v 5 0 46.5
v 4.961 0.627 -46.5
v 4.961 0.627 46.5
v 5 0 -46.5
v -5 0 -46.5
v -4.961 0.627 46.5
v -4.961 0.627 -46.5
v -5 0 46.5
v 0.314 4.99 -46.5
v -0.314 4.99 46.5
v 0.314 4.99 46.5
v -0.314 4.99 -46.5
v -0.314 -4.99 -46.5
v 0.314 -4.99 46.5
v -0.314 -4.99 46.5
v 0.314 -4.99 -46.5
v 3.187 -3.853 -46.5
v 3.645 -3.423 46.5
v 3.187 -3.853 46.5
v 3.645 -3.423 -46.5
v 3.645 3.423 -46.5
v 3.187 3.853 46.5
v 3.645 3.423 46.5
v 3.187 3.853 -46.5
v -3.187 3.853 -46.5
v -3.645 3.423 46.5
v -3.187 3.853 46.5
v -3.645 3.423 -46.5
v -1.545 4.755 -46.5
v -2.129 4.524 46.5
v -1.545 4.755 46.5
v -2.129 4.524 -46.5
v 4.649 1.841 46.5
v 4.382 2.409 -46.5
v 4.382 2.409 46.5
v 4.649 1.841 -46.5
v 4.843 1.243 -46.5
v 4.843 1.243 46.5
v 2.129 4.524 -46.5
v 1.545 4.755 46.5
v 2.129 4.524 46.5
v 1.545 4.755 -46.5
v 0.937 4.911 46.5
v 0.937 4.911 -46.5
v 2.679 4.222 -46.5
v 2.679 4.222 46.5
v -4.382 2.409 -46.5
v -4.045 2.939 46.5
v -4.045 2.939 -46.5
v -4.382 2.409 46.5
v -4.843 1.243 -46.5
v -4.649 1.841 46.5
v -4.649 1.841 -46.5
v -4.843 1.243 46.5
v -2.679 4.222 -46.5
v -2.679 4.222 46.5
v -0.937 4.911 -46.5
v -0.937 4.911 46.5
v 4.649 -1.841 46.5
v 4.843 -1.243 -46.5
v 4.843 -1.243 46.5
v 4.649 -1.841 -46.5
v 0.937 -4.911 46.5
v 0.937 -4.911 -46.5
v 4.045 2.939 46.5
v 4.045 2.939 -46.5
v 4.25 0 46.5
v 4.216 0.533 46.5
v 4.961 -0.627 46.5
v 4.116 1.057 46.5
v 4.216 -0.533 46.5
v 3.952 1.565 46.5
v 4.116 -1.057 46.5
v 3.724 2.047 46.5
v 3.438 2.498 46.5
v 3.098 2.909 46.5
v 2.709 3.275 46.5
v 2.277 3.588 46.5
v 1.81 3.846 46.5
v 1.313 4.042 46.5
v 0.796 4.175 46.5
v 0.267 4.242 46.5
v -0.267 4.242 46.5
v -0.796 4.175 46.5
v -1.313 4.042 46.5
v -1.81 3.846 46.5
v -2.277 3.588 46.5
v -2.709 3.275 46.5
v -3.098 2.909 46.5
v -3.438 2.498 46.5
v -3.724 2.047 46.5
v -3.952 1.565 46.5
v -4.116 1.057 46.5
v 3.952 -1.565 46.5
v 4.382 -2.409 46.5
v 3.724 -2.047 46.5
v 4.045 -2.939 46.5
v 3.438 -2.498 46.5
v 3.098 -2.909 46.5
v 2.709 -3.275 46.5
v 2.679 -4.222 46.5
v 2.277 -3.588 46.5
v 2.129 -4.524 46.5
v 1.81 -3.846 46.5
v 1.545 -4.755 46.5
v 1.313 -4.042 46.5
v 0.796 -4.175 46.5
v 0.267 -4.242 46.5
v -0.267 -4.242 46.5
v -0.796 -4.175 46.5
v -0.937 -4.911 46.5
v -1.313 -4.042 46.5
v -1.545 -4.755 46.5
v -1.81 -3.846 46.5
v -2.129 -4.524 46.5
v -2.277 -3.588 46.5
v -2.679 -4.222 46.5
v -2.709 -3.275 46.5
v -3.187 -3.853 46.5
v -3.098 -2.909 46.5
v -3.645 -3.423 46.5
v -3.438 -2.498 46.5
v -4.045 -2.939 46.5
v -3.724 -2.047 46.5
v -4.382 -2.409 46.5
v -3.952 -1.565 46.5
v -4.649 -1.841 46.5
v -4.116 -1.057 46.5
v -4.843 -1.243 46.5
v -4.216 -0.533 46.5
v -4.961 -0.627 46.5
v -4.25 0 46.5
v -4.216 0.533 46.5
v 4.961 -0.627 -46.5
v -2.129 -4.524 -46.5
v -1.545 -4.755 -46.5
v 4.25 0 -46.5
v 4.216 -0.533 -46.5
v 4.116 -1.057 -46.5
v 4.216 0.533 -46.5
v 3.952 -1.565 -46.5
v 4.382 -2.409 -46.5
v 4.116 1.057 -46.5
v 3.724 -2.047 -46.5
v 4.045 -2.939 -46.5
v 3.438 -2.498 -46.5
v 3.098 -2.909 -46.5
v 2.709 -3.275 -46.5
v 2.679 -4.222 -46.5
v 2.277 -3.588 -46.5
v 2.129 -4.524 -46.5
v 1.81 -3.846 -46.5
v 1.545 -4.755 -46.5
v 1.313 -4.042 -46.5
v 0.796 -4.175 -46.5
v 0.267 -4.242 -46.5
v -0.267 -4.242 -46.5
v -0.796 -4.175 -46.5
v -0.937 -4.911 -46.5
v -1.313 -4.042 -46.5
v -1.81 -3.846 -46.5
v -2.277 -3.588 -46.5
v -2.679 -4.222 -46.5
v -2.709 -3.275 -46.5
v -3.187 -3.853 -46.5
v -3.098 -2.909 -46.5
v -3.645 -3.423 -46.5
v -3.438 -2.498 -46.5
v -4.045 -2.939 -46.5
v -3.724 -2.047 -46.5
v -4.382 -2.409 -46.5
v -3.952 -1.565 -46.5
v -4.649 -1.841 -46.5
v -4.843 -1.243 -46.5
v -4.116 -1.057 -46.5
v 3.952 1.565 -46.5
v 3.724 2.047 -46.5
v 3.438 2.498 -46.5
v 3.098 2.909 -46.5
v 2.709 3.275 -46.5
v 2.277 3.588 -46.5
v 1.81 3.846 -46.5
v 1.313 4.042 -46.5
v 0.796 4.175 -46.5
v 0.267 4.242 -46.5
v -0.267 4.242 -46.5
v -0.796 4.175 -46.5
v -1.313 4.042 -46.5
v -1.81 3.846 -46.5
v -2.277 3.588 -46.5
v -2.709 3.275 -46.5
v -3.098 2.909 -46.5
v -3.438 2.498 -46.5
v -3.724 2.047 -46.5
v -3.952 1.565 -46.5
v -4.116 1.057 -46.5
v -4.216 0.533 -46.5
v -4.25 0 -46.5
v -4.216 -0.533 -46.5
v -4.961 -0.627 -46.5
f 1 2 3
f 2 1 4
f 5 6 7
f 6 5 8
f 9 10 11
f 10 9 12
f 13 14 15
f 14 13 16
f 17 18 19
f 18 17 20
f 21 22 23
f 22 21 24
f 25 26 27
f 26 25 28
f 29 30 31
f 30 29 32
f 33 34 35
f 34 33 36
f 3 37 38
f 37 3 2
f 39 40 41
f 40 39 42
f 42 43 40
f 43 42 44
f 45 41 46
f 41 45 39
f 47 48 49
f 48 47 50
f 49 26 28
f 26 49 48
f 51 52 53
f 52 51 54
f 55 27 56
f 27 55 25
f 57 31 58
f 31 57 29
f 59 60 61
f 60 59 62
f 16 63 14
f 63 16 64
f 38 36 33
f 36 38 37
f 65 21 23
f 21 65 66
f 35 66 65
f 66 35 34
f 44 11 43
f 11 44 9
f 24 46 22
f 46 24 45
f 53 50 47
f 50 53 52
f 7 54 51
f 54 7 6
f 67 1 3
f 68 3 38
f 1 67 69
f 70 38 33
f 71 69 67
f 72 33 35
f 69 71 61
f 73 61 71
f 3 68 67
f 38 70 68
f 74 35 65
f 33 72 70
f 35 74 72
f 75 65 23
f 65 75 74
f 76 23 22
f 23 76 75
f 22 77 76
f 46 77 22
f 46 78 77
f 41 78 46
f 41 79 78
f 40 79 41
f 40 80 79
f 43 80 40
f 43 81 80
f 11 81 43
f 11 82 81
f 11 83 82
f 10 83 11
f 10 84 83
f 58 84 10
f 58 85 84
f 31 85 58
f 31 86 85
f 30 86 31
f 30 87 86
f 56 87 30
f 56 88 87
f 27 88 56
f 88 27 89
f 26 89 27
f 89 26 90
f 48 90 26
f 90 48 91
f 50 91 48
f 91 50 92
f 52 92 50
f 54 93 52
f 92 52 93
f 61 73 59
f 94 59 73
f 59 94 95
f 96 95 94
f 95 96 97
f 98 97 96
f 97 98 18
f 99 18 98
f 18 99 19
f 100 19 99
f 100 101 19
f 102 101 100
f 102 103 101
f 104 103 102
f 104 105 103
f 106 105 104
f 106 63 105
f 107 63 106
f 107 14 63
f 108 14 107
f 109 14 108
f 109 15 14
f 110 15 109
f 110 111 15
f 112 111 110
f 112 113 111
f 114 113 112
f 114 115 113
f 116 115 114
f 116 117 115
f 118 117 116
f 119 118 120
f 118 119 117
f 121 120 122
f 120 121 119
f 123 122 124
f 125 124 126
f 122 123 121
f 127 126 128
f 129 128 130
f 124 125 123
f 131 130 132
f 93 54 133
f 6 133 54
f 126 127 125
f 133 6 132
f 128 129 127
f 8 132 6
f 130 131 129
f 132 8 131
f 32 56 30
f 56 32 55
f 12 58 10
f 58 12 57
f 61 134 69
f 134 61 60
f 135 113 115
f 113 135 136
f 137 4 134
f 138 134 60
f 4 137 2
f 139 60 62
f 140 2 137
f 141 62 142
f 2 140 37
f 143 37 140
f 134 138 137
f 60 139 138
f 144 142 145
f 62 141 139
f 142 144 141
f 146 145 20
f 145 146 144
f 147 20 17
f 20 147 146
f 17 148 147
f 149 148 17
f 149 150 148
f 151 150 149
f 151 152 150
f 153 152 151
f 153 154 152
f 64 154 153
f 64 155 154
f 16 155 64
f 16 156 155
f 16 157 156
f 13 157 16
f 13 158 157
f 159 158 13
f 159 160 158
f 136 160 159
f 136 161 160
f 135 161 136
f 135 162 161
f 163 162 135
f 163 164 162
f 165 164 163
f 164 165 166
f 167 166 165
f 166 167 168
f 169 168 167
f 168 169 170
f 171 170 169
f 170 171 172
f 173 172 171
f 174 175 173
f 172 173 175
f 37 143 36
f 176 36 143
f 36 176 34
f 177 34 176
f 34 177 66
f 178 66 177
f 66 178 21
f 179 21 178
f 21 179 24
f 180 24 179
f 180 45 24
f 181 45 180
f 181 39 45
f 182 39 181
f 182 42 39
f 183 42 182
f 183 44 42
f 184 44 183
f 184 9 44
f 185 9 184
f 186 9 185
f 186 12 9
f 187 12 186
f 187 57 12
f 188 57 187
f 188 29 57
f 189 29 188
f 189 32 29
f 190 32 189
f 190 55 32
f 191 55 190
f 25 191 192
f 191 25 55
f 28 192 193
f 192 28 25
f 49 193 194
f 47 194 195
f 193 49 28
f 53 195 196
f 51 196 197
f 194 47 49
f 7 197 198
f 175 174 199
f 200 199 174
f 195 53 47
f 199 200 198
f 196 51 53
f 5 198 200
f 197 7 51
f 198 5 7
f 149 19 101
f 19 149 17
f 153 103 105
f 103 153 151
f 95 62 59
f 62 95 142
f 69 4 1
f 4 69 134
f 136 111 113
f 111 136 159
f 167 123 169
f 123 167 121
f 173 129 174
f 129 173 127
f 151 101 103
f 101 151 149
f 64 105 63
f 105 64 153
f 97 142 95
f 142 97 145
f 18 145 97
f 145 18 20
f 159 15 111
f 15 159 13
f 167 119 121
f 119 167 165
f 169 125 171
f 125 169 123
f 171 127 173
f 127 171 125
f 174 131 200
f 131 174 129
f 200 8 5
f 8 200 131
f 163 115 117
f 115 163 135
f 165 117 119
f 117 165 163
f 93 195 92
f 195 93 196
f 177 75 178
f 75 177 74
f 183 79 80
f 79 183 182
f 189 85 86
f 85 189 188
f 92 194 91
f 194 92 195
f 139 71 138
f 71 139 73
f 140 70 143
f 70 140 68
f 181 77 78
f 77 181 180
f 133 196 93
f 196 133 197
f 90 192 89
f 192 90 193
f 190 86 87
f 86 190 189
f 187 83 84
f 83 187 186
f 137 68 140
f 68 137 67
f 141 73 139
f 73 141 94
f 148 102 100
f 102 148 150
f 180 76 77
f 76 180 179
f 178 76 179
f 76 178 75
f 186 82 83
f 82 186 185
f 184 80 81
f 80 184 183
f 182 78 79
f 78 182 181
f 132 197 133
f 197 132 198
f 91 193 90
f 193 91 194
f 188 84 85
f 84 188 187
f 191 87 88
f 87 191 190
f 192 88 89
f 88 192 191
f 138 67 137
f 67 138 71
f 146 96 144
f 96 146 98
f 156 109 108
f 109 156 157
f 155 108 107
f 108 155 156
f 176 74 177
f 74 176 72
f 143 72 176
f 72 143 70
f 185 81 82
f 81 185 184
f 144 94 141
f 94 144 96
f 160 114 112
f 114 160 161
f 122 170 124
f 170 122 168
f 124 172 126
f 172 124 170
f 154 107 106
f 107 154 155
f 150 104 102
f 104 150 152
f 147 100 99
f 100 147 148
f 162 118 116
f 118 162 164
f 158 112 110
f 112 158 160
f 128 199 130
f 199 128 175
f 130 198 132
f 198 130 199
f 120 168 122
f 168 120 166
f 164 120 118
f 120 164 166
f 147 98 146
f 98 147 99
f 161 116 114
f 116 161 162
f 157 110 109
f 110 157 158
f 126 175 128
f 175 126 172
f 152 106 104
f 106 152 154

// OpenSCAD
$fn = 50;


difference() {
	union() {
		translate(v = [0, 0, -46.5000000000]) {
			cylinder(h = 93, r = 5.0000000000);
		}
	}
	union() {
		translate(v = [0, 0, -100.0000000000]) {
			cylinder(h = 200, r = 4.2500000000);
		}
	}
}
